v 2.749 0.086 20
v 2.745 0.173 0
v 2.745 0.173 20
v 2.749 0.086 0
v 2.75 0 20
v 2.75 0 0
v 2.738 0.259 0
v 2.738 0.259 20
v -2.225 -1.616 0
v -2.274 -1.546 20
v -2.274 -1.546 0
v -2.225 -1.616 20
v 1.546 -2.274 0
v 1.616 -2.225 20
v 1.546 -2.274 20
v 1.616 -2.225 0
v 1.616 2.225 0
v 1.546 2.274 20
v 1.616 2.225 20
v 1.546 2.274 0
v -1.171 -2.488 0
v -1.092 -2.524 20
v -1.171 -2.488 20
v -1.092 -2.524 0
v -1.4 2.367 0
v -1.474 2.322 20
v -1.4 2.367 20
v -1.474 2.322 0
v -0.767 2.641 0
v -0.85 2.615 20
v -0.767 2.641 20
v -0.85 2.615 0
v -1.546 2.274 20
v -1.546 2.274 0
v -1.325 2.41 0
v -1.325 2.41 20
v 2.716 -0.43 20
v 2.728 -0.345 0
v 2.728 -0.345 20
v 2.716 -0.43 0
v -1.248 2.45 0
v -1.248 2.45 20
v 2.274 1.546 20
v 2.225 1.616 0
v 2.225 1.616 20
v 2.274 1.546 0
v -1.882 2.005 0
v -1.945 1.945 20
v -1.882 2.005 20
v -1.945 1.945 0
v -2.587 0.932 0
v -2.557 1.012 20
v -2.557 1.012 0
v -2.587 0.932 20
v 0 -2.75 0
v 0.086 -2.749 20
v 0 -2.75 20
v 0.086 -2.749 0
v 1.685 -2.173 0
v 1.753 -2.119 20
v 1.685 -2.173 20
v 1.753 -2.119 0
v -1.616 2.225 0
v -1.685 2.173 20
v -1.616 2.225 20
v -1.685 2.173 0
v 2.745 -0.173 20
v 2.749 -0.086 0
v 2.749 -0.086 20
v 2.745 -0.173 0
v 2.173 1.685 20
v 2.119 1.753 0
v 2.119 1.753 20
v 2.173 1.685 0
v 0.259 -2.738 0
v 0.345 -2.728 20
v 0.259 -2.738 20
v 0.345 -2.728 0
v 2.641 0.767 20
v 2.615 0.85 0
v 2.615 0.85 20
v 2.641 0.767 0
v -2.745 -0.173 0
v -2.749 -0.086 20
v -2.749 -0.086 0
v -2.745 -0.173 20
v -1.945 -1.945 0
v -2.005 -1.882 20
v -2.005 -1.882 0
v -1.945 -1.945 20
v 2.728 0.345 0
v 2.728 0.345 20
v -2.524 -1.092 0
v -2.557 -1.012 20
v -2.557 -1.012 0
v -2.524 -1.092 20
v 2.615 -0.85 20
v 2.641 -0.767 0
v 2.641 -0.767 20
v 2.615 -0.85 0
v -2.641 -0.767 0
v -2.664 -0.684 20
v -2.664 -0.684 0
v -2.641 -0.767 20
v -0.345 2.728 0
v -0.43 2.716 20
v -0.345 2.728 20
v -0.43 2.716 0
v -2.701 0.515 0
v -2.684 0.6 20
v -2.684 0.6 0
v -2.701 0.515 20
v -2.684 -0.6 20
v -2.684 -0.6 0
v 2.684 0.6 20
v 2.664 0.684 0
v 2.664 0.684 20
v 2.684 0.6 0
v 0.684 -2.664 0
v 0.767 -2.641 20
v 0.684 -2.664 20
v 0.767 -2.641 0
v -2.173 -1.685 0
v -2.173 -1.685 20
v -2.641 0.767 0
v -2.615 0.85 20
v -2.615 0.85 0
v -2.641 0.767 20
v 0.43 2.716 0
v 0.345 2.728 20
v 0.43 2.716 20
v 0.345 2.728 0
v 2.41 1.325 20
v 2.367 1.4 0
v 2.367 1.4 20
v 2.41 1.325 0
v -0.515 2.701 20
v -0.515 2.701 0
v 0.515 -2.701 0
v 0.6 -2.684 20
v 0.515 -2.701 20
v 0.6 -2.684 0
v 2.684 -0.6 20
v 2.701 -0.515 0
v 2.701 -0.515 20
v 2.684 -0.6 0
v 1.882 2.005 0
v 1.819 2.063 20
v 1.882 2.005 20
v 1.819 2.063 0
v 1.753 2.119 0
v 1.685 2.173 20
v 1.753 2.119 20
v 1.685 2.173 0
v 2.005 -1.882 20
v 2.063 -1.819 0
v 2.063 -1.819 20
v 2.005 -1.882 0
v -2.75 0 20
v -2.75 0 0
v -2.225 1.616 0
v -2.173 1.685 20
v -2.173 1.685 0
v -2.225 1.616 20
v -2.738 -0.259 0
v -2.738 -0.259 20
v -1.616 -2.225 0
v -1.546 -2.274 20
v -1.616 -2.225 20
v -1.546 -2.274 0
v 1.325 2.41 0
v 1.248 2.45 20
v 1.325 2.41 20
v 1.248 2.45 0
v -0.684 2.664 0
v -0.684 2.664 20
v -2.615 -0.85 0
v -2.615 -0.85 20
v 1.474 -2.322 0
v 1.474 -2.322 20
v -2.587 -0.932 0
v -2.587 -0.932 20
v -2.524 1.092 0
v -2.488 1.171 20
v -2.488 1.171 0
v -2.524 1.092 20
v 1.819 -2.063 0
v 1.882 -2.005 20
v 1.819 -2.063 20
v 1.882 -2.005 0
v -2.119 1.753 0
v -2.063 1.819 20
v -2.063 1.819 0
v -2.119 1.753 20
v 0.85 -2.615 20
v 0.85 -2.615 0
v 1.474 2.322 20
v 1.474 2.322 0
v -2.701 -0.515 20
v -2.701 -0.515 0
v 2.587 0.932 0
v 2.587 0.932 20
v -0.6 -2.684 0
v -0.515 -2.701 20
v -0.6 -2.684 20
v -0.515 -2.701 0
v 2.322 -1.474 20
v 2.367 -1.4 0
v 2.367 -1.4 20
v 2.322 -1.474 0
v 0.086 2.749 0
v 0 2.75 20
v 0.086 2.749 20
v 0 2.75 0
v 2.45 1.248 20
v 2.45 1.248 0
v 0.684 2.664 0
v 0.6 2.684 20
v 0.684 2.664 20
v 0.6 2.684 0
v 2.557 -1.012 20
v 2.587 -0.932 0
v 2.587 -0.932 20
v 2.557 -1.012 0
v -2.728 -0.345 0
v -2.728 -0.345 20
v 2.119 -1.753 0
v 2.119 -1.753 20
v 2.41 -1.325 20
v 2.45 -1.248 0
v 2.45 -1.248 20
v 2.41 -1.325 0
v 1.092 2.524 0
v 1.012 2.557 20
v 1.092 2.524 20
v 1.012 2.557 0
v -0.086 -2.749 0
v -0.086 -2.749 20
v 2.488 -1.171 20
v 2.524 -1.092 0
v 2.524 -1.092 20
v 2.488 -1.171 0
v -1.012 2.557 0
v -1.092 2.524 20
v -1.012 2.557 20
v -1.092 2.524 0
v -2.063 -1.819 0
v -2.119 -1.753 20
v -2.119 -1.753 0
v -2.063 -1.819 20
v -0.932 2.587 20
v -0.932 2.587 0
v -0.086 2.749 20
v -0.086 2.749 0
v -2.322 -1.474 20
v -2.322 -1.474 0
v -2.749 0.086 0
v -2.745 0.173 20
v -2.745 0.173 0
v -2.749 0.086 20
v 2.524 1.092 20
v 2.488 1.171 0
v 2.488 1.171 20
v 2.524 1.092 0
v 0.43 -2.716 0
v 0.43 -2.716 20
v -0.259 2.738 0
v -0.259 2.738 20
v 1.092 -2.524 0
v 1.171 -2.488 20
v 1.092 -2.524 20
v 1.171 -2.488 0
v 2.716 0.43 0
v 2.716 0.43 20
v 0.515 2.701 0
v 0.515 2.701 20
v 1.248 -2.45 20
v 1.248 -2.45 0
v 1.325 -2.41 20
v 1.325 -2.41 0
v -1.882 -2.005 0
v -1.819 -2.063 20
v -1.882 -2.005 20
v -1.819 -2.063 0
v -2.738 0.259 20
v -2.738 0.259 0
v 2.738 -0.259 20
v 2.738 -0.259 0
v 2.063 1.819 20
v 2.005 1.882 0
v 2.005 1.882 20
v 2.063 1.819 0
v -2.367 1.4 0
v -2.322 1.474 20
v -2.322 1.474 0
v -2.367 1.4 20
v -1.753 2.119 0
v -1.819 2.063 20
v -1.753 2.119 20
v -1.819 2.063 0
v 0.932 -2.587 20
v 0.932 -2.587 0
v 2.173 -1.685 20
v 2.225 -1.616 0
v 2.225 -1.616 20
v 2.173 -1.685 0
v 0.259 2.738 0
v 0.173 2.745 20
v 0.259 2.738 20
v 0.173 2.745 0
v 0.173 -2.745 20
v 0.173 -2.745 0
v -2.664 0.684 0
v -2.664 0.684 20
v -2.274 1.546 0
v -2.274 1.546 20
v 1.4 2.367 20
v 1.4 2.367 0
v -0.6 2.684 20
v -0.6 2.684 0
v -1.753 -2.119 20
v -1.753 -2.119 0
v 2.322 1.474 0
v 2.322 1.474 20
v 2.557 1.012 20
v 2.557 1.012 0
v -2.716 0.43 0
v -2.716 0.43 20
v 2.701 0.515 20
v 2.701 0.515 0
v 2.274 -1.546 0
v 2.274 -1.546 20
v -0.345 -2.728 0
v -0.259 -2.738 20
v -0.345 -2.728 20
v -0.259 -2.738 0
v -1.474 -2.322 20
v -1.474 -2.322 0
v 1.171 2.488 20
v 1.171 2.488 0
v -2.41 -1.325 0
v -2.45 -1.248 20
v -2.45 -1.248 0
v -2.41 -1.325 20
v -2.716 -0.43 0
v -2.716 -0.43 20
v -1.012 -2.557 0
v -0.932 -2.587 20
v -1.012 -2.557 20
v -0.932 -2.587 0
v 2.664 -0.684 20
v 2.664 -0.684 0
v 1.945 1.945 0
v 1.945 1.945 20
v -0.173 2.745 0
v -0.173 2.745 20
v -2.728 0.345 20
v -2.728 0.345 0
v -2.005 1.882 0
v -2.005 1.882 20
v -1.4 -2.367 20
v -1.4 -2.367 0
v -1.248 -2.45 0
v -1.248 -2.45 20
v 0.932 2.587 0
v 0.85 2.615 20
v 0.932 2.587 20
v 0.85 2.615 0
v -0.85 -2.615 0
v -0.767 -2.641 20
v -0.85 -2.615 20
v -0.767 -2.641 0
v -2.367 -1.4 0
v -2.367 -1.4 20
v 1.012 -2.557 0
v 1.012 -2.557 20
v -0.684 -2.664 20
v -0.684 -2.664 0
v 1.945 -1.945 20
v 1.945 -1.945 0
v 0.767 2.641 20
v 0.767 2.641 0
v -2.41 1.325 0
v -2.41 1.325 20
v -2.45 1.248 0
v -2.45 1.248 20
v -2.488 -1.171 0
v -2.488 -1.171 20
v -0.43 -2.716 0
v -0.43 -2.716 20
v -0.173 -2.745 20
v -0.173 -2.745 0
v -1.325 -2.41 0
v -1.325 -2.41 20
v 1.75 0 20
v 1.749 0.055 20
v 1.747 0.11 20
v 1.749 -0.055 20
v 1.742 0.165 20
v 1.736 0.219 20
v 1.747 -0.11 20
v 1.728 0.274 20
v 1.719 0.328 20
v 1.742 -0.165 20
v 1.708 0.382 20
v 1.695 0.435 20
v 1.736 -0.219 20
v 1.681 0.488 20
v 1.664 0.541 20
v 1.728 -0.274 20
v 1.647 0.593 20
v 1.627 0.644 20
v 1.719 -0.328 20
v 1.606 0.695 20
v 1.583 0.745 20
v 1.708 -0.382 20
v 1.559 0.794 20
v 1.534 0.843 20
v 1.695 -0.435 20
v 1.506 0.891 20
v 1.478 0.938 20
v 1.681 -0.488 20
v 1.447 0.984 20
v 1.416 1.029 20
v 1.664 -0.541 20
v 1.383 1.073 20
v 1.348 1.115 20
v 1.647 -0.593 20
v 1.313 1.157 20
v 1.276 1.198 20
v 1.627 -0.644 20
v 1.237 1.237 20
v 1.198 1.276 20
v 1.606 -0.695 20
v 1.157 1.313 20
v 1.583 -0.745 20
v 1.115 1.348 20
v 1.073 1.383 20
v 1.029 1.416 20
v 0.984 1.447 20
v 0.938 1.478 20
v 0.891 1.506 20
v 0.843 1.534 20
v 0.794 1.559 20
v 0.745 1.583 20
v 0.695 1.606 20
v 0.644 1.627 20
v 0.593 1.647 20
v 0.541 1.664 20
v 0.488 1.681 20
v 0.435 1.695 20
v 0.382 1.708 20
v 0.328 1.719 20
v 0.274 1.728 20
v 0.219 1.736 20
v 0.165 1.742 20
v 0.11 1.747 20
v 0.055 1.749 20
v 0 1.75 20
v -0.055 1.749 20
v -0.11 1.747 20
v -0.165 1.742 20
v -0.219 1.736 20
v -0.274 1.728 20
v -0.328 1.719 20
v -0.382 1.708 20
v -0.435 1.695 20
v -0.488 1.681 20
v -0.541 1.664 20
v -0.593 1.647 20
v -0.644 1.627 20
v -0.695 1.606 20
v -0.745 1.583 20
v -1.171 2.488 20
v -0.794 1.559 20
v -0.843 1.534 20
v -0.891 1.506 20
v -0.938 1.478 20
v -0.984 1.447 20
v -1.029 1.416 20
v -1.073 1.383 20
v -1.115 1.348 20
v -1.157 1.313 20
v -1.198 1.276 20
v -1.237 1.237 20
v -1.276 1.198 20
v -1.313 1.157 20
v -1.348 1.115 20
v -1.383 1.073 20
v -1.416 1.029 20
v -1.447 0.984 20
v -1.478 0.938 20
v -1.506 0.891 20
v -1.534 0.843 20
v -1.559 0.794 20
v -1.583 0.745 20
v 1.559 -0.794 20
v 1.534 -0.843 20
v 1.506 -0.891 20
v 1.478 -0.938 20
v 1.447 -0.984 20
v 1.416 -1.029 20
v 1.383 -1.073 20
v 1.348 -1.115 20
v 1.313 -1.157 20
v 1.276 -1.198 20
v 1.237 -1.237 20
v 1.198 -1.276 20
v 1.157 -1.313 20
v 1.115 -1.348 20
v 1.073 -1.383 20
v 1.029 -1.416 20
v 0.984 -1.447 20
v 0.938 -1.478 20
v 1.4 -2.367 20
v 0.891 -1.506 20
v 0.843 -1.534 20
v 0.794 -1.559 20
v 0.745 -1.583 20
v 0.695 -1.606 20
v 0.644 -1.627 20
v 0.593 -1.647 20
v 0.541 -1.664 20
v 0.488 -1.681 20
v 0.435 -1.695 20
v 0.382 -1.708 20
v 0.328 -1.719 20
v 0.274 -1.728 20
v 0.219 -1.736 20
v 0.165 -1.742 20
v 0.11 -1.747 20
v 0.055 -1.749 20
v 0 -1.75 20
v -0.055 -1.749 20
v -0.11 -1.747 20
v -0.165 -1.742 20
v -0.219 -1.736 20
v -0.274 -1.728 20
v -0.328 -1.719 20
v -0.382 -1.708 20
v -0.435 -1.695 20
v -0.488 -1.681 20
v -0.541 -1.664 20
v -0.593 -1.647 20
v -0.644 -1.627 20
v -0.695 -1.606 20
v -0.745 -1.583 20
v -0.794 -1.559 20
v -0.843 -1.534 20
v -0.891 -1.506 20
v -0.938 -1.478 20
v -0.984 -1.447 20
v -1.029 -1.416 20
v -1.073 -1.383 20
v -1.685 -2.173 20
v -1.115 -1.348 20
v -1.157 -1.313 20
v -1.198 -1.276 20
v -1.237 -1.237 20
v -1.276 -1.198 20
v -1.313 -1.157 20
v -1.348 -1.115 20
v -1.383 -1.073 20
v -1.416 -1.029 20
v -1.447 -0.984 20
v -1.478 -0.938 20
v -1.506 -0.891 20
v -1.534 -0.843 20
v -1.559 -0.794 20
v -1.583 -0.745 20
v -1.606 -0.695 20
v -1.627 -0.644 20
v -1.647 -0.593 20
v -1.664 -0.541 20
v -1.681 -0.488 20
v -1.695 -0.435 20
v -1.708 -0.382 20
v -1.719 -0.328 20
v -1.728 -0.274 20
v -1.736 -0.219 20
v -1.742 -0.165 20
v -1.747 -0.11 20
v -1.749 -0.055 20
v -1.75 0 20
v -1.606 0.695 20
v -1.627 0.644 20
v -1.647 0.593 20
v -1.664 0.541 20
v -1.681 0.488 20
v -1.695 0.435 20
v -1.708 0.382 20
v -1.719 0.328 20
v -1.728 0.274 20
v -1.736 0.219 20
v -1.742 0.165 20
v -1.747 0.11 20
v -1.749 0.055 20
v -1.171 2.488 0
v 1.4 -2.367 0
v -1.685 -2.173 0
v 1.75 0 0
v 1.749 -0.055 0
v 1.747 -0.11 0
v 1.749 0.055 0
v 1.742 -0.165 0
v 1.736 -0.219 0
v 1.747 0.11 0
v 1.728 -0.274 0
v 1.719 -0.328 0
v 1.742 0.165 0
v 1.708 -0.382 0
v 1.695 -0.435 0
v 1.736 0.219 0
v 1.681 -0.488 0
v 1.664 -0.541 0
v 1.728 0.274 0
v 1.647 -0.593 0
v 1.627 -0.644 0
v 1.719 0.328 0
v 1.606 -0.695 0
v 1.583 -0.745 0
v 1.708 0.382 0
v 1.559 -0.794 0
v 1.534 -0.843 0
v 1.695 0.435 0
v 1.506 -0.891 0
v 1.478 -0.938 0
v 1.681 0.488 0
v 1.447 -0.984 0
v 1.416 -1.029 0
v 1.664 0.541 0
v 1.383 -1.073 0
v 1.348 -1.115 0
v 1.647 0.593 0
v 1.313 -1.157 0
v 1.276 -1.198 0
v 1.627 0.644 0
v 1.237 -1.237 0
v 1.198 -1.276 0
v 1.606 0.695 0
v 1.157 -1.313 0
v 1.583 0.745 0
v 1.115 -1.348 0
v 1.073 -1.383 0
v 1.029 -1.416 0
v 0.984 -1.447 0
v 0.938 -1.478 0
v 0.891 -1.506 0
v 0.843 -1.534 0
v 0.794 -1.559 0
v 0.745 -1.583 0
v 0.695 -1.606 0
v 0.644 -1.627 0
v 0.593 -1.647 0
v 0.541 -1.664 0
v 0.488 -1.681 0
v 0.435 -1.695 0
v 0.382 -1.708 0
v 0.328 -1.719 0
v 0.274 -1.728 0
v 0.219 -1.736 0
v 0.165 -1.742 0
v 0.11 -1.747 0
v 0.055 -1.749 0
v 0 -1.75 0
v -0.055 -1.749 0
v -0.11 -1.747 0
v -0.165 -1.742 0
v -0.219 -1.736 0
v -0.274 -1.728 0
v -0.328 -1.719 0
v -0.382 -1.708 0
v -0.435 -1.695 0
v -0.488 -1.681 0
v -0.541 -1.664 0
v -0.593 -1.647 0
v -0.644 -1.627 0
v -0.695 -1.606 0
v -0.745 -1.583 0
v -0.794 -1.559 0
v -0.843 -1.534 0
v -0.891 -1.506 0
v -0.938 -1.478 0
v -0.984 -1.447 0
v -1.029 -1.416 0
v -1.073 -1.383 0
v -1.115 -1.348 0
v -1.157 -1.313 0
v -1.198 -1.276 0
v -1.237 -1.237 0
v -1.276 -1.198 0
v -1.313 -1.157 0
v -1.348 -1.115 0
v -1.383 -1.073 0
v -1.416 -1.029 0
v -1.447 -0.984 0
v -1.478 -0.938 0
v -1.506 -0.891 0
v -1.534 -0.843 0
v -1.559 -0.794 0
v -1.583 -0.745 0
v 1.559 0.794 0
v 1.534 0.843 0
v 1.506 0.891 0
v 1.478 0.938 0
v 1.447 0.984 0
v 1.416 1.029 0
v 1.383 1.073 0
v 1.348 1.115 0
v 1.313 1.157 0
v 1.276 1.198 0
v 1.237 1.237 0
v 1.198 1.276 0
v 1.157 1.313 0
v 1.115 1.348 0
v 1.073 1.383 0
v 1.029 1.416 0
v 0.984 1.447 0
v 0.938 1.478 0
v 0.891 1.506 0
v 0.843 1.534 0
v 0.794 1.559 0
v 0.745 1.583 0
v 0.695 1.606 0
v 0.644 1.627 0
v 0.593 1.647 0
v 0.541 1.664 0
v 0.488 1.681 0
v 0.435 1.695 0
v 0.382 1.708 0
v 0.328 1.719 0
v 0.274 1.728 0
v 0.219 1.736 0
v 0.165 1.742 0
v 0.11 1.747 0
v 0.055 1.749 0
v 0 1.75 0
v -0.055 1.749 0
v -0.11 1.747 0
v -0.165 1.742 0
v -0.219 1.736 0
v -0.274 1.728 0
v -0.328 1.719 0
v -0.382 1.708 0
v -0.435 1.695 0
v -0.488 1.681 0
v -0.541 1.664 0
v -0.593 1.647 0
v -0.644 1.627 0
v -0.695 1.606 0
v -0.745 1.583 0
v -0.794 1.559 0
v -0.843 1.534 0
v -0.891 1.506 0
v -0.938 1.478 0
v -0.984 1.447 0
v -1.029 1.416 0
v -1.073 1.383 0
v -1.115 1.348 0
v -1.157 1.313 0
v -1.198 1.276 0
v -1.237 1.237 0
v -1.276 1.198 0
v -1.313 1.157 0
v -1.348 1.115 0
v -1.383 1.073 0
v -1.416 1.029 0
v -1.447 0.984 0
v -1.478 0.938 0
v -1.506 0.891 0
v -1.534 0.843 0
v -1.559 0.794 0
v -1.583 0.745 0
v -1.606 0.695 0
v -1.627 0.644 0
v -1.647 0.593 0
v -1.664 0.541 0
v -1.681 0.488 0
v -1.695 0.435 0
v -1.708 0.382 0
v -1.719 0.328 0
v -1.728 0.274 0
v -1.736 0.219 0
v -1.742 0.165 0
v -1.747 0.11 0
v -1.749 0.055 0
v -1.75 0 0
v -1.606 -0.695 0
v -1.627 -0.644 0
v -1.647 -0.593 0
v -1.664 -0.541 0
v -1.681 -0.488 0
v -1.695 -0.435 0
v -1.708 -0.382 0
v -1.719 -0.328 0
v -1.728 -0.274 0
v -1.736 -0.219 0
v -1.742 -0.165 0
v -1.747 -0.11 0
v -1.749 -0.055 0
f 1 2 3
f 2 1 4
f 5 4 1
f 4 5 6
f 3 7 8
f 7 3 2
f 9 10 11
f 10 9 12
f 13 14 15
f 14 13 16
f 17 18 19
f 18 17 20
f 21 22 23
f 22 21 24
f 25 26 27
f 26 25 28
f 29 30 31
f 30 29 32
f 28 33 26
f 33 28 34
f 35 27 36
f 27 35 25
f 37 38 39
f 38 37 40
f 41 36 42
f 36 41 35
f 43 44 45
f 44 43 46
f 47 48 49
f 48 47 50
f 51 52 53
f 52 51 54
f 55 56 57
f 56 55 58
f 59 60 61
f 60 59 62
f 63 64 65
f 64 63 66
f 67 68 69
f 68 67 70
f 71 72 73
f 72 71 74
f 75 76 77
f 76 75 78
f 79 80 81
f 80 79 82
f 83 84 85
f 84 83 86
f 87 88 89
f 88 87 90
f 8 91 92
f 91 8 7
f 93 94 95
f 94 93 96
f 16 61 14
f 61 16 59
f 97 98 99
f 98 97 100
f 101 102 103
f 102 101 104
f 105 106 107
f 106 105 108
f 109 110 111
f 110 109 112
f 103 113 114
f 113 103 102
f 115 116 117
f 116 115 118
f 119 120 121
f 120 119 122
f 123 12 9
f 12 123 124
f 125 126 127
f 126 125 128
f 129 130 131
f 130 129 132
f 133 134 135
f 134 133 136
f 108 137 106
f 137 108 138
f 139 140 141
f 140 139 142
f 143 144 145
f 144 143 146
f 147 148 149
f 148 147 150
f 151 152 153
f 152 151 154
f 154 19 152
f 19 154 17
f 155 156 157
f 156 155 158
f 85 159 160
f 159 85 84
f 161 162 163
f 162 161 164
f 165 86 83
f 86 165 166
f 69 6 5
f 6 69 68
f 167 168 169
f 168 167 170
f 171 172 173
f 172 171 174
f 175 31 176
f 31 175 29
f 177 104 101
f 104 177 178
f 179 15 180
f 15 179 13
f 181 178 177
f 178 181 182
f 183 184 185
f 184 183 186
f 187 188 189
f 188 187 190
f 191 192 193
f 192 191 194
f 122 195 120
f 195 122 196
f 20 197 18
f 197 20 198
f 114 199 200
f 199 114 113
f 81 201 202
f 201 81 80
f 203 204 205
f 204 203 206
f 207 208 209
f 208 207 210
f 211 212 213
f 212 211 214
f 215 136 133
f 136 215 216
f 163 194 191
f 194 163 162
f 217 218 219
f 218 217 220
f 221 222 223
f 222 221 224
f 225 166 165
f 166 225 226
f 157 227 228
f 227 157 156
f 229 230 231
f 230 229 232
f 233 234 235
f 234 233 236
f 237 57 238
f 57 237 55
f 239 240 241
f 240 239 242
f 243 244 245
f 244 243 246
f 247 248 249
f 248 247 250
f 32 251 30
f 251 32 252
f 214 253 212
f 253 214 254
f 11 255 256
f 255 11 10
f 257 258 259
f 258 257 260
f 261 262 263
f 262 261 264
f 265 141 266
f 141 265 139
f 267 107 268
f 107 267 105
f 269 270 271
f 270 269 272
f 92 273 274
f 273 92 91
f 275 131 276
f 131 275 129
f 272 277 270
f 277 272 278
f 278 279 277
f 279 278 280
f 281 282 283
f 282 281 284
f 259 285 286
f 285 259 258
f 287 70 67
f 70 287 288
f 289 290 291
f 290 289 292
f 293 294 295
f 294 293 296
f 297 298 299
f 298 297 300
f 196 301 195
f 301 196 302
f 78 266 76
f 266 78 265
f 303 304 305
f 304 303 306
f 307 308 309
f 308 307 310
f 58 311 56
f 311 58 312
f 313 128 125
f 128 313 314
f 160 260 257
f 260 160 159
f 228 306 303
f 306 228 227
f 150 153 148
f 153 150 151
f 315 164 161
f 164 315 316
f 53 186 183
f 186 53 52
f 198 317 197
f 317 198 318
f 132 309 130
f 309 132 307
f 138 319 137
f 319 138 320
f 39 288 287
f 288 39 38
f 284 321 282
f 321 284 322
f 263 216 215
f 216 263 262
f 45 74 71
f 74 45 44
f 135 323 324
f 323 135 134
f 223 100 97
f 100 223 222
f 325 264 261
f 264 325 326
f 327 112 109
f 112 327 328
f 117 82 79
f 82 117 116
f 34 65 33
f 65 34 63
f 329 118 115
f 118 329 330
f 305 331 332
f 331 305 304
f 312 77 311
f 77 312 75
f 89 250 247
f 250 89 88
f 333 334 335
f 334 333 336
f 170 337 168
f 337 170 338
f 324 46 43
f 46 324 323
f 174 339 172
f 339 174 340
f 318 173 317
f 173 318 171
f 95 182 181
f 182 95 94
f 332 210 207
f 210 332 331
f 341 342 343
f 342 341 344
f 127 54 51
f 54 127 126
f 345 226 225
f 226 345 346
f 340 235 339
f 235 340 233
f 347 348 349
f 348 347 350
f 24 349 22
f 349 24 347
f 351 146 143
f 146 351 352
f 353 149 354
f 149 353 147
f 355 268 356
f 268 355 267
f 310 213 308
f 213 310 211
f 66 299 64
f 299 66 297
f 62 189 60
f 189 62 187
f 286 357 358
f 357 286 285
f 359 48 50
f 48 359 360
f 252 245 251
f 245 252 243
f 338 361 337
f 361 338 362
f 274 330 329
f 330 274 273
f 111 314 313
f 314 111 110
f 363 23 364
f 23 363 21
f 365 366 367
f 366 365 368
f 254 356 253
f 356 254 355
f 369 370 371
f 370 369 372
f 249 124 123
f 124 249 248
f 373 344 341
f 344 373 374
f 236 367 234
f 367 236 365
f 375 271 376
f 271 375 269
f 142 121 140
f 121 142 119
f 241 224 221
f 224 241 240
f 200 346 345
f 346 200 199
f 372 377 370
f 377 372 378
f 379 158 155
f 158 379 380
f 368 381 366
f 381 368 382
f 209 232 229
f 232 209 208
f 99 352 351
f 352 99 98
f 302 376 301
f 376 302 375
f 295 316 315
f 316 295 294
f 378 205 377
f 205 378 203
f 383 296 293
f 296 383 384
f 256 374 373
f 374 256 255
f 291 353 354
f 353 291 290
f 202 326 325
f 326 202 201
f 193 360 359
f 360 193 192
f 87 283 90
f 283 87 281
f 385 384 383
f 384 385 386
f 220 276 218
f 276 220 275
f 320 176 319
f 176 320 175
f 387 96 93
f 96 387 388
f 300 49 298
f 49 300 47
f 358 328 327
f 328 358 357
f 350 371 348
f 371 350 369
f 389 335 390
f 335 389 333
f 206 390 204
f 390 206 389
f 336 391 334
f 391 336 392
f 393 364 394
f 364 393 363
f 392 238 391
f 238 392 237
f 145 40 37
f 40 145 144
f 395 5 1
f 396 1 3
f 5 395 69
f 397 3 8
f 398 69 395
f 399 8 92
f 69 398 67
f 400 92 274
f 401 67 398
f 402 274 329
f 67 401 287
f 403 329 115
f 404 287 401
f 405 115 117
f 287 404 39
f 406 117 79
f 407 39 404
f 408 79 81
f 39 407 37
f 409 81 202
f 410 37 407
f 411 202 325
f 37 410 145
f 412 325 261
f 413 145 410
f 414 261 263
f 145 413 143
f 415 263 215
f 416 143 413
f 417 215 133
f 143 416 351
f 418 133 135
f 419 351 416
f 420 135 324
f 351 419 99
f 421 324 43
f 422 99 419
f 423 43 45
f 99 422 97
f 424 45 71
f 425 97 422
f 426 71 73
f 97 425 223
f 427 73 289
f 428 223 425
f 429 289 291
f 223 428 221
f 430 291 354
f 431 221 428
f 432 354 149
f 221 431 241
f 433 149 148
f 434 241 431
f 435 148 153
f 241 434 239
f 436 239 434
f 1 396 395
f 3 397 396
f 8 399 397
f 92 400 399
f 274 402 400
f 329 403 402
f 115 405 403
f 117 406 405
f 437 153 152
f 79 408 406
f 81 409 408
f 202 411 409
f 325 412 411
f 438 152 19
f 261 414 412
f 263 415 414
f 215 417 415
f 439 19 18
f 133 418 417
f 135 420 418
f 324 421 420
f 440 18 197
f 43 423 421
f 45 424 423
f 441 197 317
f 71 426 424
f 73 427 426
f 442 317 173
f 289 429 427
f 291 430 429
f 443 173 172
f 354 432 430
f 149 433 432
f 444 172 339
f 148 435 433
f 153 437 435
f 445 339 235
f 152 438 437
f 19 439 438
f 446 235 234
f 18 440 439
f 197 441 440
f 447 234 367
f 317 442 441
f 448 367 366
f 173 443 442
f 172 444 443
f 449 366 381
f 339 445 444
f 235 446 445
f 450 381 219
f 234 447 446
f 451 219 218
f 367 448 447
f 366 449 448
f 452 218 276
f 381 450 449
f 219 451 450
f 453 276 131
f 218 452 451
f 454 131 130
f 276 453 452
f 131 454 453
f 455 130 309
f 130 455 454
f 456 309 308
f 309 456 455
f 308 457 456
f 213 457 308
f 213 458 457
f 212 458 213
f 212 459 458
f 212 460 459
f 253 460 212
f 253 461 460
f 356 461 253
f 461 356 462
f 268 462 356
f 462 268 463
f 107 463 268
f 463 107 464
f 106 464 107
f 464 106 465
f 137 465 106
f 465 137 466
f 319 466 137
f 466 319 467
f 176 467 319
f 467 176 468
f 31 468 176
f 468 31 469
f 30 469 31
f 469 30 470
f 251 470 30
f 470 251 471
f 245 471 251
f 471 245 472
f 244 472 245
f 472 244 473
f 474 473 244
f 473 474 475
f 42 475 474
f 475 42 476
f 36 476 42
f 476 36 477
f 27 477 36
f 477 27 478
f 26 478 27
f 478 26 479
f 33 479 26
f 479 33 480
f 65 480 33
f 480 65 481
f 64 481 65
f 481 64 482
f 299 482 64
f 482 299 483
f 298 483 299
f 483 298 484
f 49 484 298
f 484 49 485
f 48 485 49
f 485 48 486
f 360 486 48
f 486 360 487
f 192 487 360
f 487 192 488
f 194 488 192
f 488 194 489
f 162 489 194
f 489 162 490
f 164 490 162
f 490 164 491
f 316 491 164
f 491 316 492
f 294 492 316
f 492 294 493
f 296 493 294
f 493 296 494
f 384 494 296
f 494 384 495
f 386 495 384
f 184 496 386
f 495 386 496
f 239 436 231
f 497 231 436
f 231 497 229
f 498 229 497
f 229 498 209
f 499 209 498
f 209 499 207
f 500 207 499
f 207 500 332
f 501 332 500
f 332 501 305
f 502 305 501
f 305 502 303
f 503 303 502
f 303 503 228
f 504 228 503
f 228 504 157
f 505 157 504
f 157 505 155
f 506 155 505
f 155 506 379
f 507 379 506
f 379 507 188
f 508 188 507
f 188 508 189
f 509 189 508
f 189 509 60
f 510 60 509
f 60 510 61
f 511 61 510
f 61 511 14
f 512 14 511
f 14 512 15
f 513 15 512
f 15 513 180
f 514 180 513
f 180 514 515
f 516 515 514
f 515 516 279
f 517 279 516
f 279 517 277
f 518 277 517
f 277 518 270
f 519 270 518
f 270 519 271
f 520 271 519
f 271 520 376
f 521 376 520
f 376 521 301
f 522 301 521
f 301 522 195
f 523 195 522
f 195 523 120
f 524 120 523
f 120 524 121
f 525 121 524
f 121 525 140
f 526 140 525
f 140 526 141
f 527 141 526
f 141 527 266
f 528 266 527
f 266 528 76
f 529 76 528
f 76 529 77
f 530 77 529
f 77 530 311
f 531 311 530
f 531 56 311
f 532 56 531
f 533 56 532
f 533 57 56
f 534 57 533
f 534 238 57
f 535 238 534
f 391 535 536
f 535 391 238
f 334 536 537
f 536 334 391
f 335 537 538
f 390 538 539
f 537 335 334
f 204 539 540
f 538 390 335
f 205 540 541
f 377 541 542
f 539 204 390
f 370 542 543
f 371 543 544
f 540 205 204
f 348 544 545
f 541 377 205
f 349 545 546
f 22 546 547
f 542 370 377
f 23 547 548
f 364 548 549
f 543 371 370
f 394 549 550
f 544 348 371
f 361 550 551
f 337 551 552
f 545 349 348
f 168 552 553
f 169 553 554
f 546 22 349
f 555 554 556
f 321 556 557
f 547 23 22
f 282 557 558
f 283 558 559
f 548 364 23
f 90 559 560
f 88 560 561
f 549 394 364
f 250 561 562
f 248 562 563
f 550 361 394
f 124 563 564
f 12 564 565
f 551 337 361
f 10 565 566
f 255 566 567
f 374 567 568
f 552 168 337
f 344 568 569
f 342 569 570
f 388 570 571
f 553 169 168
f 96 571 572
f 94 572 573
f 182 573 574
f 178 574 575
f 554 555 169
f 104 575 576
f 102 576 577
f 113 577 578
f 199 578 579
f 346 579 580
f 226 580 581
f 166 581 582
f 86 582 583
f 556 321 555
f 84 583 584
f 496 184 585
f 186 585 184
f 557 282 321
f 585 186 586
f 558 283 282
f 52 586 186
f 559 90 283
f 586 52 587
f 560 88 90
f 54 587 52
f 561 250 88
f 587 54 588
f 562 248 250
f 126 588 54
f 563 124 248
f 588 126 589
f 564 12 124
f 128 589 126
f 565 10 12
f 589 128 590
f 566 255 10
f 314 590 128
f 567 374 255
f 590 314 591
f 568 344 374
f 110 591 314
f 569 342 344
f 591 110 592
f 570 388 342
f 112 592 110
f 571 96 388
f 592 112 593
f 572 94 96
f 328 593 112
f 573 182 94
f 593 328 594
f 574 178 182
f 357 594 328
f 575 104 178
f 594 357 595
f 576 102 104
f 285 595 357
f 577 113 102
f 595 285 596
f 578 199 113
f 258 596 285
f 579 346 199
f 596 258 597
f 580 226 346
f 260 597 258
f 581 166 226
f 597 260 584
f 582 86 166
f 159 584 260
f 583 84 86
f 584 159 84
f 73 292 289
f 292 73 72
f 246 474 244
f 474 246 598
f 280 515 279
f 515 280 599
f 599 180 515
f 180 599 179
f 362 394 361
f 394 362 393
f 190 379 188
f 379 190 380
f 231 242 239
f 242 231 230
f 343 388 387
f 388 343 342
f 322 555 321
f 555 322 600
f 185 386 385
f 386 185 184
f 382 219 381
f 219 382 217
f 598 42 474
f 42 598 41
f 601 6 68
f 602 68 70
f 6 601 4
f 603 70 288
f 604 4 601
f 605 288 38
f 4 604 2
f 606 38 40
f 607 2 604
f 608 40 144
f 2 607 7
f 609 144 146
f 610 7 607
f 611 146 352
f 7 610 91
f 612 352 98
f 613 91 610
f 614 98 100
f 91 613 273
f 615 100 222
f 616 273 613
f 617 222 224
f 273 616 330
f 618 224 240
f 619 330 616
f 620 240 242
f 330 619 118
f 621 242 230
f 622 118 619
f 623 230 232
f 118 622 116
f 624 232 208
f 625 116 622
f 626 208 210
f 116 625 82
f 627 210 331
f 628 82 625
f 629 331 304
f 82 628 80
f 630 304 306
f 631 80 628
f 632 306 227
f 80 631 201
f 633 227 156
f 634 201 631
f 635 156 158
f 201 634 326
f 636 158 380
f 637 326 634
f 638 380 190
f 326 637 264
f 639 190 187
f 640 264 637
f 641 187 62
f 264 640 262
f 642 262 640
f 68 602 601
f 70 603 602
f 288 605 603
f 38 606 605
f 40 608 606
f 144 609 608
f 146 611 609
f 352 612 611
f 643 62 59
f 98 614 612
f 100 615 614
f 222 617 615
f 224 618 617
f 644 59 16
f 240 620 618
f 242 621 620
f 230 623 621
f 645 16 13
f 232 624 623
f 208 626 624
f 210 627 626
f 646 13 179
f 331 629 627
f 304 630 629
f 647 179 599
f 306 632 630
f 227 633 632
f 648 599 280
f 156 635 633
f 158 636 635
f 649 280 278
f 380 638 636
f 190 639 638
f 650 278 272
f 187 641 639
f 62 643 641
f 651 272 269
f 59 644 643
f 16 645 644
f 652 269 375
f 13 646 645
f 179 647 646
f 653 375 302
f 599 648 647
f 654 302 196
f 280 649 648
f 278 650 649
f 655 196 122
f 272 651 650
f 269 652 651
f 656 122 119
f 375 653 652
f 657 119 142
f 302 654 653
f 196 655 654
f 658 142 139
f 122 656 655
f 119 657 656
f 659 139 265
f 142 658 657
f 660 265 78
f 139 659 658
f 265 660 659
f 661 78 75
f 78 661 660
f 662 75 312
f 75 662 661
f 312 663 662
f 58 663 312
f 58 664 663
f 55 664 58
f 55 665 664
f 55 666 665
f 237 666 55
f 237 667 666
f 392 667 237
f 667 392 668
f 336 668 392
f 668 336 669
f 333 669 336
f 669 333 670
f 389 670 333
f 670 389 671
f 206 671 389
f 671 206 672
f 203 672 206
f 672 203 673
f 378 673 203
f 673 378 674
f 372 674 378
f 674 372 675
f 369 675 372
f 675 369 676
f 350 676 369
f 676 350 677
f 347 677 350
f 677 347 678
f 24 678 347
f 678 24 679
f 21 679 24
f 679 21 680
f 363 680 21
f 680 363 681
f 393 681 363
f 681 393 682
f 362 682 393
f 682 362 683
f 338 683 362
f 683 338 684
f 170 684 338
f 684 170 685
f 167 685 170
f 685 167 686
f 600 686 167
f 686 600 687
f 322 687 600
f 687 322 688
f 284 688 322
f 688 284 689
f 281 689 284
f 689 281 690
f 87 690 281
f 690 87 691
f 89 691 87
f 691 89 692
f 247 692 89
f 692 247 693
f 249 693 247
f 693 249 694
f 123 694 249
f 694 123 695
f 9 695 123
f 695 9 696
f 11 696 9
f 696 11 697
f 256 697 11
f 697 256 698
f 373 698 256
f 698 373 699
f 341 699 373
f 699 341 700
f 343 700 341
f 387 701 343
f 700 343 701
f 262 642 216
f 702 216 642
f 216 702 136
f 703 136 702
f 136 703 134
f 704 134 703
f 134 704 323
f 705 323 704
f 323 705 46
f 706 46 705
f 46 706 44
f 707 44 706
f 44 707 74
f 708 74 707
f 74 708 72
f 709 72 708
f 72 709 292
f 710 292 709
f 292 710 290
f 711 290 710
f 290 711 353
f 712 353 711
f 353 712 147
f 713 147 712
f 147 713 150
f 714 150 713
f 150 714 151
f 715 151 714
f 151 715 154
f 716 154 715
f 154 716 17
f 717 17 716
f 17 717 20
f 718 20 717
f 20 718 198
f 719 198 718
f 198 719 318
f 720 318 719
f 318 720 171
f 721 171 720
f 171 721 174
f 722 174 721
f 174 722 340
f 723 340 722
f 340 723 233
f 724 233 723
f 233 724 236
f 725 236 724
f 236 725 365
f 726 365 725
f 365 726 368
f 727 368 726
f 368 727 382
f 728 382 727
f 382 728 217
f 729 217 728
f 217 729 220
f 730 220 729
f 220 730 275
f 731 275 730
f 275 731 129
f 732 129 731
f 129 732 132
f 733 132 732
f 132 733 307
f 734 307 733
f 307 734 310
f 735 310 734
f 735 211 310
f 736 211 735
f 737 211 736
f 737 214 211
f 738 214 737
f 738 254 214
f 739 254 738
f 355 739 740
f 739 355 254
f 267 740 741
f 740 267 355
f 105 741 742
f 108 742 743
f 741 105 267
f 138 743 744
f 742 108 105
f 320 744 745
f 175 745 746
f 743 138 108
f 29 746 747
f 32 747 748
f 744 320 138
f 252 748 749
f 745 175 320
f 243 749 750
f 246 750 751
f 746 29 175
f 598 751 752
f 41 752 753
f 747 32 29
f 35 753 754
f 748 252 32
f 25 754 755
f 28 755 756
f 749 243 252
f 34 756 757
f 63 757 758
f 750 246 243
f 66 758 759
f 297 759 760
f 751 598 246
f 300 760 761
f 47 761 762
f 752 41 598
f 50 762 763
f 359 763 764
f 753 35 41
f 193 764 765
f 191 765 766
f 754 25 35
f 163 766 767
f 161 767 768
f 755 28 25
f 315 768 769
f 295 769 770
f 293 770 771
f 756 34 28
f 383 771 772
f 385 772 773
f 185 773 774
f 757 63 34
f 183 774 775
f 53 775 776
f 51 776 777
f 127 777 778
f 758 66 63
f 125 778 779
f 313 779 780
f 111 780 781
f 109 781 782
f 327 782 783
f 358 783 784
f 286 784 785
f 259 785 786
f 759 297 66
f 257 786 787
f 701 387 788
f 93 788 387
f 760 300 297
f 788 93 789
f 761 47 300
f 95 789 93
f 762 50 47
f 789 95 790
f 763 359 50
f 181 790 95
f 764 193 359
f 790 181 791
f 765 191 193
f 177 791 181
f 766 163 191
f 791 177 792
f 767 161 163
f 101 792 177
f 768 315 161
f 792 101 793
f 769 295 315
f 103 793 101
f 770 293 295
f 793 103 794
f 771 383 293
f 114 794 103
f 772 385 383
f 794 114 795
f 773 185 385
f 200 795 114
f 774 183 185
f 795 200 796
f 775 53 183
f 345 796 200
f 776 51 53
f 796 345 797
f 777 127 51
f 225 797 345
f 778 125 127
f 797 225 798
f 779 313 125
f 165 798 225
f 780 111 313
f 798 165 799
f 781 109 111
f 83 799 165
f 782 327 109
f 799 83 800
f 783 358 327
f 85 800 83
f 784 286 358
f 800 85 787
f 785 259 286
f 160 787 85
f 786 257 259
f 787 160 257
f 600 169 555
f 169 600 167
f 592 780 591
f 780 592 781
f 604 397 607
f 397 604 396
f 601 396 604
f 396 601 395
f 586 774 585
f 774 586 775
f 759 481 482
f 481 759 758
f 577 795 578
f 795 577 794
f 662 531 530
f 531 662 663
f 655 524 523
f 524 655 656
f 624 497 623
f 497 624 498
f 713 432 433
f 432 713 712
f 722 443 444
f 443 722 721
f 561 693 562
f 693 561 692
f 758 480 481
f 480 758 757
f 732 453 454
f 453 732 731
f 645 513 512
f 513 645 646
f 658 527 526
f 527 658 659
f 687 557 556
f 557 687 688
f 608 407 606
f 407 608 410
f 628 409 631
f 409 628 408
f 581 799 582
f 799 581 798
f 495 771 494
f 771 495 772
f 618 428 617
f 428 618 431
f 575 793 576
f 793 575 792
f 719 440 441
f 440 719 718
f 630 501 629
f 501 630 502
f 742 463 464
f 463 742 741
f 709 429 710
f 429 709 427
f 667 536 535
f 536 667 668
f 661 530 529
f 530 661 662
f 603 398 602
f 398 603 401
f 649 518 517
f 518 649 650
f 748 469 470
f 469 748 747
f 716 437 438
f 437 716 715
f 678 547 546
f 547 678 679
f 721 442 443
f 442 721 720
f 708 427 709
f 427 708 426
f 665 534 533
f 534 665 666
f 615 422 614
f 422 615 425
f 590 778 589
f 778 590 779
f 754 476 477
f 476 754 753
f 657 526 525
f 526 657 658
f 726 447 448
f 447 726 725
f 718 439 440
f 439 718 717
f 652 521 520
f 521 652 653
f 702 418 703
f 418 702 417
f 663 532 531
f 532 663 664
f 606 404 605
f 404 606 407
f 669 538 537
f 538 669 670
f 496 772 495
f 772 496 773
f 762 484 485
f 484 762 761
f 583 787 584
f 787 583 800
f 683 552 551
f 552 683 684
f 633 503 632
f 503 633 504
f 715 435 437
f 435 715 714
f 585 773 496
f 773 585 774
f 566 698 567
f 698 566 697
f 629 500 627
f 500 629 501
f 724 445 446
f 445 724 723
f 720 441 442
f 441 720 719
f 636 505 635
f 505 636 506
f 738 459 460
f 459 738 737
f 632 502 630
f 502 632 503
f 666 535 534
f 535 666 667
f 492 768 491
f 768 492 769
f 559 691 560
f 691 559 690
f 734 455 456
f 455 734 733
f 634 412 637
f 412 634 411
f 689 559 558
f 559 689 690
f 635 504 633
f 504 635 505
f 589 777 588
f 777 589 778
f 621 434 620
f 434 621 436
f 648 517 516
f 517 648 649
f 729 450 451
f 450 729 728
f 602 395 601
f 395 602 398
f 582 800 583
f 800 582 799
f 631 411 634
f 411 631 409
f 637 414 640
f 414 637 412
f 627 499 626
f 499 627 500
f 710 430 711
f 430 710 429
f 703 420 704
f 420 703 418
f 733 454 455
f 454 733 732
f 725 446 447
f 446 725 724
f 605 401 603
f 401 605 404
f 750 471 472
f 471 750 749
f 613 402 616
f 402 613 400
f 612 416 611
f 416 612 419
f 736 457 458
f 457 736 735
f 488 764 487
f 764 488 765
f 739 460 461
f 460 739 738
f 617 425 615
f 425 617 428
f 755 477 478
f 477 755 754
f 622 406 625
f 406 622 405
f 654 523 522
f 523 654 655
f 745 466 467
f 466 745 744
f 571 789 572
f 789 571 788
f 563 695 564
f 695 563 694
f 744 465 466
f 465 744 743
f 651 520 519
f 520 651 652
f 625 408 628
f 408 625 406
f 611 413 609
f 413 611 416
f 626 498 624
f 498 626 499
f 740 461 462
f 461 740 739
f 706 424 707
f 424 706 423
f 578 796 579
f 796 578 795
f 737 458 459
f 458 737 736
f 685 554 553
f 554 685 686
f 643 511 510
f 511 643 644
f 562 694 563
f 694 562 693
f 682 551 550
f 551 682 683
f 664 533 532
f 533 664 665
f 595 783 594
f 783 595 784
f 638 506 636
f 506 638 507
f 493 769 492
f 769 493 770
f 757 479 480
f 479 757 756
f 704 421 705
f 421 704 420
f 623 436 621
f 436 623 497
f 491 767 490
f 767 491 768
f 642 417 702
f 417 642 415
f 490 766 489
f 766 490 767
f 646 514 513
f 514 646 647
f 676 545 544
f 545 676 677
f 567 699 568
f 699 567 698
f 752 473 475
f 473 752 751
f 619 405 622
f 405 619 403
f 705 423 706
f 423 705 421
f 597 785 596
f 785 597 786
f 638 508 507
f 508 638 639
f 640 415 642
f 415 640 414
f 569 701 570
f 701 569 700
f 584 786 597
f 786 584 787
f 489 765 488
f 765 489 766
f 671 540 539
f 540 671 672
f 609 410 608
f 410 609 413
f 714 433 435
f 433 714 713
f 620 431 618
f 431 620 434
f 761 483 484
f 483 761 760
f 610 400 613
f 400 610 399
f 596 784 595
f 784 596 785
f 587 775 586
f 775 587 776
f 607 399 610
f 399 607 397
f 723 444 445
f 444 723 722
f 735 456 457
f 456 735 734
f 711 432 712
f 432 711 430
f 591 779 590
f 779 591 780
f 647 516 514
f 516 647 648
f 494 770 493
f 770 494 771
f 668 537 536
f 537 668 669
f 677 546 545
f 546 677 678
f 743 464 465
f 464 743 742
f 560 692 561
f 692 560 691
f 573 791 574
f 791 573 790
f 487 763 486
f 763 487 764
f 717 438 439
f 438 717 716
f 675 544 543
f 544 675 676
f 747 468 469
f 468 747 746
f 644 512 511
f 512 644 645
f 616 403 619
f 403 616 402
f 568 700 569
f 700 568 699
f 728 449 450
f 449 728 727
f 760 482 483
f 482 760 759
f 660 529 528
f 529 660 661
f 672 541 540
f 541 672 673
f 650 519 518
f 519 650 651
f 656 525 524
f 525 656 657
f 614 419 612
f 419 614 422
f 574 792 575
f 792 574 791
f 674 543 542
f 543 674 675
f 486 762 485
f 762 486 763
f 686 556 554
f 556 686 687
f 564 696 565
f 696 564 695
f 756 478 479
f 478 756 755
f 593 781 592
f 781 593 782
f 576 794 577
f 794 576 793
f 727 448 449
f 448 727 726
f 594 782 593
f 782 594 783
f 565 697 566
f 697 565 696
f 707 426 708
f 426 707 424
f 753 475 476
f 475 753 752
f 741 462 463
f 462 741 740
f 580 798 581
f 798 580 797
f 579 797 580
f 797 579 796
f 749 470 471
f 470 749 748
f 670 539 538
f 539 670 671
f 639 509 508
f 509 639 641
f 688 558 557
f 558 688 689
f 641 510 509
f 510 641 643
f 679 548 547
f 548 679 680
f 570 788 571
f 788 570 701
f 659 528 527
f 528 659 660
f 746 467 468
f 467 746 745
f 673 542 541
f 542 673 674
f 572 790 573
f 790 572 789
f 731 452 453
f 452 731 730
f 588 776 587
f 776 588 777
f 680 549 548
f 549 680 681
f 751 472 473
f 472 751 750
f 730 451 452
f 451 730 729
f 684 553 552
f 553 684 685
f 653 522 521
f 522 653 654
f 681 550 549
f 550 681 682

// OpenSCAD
longueur = 20; //mm
diametre_interieur = 3; //mm
jeu = 0.25; //mm
epaisseur = 1; //mm
$fn=200;
difference(){
    //exterieur
    cylinder(d=diametre_interieur + 2 * jeu + 2 * epaisseur, h=longueur);
    //trou
    translate([0,0,-jeu]) cylinder(d=diametre_interieur + 2 * jeu, h=longueur + 2 * jeu);
}
